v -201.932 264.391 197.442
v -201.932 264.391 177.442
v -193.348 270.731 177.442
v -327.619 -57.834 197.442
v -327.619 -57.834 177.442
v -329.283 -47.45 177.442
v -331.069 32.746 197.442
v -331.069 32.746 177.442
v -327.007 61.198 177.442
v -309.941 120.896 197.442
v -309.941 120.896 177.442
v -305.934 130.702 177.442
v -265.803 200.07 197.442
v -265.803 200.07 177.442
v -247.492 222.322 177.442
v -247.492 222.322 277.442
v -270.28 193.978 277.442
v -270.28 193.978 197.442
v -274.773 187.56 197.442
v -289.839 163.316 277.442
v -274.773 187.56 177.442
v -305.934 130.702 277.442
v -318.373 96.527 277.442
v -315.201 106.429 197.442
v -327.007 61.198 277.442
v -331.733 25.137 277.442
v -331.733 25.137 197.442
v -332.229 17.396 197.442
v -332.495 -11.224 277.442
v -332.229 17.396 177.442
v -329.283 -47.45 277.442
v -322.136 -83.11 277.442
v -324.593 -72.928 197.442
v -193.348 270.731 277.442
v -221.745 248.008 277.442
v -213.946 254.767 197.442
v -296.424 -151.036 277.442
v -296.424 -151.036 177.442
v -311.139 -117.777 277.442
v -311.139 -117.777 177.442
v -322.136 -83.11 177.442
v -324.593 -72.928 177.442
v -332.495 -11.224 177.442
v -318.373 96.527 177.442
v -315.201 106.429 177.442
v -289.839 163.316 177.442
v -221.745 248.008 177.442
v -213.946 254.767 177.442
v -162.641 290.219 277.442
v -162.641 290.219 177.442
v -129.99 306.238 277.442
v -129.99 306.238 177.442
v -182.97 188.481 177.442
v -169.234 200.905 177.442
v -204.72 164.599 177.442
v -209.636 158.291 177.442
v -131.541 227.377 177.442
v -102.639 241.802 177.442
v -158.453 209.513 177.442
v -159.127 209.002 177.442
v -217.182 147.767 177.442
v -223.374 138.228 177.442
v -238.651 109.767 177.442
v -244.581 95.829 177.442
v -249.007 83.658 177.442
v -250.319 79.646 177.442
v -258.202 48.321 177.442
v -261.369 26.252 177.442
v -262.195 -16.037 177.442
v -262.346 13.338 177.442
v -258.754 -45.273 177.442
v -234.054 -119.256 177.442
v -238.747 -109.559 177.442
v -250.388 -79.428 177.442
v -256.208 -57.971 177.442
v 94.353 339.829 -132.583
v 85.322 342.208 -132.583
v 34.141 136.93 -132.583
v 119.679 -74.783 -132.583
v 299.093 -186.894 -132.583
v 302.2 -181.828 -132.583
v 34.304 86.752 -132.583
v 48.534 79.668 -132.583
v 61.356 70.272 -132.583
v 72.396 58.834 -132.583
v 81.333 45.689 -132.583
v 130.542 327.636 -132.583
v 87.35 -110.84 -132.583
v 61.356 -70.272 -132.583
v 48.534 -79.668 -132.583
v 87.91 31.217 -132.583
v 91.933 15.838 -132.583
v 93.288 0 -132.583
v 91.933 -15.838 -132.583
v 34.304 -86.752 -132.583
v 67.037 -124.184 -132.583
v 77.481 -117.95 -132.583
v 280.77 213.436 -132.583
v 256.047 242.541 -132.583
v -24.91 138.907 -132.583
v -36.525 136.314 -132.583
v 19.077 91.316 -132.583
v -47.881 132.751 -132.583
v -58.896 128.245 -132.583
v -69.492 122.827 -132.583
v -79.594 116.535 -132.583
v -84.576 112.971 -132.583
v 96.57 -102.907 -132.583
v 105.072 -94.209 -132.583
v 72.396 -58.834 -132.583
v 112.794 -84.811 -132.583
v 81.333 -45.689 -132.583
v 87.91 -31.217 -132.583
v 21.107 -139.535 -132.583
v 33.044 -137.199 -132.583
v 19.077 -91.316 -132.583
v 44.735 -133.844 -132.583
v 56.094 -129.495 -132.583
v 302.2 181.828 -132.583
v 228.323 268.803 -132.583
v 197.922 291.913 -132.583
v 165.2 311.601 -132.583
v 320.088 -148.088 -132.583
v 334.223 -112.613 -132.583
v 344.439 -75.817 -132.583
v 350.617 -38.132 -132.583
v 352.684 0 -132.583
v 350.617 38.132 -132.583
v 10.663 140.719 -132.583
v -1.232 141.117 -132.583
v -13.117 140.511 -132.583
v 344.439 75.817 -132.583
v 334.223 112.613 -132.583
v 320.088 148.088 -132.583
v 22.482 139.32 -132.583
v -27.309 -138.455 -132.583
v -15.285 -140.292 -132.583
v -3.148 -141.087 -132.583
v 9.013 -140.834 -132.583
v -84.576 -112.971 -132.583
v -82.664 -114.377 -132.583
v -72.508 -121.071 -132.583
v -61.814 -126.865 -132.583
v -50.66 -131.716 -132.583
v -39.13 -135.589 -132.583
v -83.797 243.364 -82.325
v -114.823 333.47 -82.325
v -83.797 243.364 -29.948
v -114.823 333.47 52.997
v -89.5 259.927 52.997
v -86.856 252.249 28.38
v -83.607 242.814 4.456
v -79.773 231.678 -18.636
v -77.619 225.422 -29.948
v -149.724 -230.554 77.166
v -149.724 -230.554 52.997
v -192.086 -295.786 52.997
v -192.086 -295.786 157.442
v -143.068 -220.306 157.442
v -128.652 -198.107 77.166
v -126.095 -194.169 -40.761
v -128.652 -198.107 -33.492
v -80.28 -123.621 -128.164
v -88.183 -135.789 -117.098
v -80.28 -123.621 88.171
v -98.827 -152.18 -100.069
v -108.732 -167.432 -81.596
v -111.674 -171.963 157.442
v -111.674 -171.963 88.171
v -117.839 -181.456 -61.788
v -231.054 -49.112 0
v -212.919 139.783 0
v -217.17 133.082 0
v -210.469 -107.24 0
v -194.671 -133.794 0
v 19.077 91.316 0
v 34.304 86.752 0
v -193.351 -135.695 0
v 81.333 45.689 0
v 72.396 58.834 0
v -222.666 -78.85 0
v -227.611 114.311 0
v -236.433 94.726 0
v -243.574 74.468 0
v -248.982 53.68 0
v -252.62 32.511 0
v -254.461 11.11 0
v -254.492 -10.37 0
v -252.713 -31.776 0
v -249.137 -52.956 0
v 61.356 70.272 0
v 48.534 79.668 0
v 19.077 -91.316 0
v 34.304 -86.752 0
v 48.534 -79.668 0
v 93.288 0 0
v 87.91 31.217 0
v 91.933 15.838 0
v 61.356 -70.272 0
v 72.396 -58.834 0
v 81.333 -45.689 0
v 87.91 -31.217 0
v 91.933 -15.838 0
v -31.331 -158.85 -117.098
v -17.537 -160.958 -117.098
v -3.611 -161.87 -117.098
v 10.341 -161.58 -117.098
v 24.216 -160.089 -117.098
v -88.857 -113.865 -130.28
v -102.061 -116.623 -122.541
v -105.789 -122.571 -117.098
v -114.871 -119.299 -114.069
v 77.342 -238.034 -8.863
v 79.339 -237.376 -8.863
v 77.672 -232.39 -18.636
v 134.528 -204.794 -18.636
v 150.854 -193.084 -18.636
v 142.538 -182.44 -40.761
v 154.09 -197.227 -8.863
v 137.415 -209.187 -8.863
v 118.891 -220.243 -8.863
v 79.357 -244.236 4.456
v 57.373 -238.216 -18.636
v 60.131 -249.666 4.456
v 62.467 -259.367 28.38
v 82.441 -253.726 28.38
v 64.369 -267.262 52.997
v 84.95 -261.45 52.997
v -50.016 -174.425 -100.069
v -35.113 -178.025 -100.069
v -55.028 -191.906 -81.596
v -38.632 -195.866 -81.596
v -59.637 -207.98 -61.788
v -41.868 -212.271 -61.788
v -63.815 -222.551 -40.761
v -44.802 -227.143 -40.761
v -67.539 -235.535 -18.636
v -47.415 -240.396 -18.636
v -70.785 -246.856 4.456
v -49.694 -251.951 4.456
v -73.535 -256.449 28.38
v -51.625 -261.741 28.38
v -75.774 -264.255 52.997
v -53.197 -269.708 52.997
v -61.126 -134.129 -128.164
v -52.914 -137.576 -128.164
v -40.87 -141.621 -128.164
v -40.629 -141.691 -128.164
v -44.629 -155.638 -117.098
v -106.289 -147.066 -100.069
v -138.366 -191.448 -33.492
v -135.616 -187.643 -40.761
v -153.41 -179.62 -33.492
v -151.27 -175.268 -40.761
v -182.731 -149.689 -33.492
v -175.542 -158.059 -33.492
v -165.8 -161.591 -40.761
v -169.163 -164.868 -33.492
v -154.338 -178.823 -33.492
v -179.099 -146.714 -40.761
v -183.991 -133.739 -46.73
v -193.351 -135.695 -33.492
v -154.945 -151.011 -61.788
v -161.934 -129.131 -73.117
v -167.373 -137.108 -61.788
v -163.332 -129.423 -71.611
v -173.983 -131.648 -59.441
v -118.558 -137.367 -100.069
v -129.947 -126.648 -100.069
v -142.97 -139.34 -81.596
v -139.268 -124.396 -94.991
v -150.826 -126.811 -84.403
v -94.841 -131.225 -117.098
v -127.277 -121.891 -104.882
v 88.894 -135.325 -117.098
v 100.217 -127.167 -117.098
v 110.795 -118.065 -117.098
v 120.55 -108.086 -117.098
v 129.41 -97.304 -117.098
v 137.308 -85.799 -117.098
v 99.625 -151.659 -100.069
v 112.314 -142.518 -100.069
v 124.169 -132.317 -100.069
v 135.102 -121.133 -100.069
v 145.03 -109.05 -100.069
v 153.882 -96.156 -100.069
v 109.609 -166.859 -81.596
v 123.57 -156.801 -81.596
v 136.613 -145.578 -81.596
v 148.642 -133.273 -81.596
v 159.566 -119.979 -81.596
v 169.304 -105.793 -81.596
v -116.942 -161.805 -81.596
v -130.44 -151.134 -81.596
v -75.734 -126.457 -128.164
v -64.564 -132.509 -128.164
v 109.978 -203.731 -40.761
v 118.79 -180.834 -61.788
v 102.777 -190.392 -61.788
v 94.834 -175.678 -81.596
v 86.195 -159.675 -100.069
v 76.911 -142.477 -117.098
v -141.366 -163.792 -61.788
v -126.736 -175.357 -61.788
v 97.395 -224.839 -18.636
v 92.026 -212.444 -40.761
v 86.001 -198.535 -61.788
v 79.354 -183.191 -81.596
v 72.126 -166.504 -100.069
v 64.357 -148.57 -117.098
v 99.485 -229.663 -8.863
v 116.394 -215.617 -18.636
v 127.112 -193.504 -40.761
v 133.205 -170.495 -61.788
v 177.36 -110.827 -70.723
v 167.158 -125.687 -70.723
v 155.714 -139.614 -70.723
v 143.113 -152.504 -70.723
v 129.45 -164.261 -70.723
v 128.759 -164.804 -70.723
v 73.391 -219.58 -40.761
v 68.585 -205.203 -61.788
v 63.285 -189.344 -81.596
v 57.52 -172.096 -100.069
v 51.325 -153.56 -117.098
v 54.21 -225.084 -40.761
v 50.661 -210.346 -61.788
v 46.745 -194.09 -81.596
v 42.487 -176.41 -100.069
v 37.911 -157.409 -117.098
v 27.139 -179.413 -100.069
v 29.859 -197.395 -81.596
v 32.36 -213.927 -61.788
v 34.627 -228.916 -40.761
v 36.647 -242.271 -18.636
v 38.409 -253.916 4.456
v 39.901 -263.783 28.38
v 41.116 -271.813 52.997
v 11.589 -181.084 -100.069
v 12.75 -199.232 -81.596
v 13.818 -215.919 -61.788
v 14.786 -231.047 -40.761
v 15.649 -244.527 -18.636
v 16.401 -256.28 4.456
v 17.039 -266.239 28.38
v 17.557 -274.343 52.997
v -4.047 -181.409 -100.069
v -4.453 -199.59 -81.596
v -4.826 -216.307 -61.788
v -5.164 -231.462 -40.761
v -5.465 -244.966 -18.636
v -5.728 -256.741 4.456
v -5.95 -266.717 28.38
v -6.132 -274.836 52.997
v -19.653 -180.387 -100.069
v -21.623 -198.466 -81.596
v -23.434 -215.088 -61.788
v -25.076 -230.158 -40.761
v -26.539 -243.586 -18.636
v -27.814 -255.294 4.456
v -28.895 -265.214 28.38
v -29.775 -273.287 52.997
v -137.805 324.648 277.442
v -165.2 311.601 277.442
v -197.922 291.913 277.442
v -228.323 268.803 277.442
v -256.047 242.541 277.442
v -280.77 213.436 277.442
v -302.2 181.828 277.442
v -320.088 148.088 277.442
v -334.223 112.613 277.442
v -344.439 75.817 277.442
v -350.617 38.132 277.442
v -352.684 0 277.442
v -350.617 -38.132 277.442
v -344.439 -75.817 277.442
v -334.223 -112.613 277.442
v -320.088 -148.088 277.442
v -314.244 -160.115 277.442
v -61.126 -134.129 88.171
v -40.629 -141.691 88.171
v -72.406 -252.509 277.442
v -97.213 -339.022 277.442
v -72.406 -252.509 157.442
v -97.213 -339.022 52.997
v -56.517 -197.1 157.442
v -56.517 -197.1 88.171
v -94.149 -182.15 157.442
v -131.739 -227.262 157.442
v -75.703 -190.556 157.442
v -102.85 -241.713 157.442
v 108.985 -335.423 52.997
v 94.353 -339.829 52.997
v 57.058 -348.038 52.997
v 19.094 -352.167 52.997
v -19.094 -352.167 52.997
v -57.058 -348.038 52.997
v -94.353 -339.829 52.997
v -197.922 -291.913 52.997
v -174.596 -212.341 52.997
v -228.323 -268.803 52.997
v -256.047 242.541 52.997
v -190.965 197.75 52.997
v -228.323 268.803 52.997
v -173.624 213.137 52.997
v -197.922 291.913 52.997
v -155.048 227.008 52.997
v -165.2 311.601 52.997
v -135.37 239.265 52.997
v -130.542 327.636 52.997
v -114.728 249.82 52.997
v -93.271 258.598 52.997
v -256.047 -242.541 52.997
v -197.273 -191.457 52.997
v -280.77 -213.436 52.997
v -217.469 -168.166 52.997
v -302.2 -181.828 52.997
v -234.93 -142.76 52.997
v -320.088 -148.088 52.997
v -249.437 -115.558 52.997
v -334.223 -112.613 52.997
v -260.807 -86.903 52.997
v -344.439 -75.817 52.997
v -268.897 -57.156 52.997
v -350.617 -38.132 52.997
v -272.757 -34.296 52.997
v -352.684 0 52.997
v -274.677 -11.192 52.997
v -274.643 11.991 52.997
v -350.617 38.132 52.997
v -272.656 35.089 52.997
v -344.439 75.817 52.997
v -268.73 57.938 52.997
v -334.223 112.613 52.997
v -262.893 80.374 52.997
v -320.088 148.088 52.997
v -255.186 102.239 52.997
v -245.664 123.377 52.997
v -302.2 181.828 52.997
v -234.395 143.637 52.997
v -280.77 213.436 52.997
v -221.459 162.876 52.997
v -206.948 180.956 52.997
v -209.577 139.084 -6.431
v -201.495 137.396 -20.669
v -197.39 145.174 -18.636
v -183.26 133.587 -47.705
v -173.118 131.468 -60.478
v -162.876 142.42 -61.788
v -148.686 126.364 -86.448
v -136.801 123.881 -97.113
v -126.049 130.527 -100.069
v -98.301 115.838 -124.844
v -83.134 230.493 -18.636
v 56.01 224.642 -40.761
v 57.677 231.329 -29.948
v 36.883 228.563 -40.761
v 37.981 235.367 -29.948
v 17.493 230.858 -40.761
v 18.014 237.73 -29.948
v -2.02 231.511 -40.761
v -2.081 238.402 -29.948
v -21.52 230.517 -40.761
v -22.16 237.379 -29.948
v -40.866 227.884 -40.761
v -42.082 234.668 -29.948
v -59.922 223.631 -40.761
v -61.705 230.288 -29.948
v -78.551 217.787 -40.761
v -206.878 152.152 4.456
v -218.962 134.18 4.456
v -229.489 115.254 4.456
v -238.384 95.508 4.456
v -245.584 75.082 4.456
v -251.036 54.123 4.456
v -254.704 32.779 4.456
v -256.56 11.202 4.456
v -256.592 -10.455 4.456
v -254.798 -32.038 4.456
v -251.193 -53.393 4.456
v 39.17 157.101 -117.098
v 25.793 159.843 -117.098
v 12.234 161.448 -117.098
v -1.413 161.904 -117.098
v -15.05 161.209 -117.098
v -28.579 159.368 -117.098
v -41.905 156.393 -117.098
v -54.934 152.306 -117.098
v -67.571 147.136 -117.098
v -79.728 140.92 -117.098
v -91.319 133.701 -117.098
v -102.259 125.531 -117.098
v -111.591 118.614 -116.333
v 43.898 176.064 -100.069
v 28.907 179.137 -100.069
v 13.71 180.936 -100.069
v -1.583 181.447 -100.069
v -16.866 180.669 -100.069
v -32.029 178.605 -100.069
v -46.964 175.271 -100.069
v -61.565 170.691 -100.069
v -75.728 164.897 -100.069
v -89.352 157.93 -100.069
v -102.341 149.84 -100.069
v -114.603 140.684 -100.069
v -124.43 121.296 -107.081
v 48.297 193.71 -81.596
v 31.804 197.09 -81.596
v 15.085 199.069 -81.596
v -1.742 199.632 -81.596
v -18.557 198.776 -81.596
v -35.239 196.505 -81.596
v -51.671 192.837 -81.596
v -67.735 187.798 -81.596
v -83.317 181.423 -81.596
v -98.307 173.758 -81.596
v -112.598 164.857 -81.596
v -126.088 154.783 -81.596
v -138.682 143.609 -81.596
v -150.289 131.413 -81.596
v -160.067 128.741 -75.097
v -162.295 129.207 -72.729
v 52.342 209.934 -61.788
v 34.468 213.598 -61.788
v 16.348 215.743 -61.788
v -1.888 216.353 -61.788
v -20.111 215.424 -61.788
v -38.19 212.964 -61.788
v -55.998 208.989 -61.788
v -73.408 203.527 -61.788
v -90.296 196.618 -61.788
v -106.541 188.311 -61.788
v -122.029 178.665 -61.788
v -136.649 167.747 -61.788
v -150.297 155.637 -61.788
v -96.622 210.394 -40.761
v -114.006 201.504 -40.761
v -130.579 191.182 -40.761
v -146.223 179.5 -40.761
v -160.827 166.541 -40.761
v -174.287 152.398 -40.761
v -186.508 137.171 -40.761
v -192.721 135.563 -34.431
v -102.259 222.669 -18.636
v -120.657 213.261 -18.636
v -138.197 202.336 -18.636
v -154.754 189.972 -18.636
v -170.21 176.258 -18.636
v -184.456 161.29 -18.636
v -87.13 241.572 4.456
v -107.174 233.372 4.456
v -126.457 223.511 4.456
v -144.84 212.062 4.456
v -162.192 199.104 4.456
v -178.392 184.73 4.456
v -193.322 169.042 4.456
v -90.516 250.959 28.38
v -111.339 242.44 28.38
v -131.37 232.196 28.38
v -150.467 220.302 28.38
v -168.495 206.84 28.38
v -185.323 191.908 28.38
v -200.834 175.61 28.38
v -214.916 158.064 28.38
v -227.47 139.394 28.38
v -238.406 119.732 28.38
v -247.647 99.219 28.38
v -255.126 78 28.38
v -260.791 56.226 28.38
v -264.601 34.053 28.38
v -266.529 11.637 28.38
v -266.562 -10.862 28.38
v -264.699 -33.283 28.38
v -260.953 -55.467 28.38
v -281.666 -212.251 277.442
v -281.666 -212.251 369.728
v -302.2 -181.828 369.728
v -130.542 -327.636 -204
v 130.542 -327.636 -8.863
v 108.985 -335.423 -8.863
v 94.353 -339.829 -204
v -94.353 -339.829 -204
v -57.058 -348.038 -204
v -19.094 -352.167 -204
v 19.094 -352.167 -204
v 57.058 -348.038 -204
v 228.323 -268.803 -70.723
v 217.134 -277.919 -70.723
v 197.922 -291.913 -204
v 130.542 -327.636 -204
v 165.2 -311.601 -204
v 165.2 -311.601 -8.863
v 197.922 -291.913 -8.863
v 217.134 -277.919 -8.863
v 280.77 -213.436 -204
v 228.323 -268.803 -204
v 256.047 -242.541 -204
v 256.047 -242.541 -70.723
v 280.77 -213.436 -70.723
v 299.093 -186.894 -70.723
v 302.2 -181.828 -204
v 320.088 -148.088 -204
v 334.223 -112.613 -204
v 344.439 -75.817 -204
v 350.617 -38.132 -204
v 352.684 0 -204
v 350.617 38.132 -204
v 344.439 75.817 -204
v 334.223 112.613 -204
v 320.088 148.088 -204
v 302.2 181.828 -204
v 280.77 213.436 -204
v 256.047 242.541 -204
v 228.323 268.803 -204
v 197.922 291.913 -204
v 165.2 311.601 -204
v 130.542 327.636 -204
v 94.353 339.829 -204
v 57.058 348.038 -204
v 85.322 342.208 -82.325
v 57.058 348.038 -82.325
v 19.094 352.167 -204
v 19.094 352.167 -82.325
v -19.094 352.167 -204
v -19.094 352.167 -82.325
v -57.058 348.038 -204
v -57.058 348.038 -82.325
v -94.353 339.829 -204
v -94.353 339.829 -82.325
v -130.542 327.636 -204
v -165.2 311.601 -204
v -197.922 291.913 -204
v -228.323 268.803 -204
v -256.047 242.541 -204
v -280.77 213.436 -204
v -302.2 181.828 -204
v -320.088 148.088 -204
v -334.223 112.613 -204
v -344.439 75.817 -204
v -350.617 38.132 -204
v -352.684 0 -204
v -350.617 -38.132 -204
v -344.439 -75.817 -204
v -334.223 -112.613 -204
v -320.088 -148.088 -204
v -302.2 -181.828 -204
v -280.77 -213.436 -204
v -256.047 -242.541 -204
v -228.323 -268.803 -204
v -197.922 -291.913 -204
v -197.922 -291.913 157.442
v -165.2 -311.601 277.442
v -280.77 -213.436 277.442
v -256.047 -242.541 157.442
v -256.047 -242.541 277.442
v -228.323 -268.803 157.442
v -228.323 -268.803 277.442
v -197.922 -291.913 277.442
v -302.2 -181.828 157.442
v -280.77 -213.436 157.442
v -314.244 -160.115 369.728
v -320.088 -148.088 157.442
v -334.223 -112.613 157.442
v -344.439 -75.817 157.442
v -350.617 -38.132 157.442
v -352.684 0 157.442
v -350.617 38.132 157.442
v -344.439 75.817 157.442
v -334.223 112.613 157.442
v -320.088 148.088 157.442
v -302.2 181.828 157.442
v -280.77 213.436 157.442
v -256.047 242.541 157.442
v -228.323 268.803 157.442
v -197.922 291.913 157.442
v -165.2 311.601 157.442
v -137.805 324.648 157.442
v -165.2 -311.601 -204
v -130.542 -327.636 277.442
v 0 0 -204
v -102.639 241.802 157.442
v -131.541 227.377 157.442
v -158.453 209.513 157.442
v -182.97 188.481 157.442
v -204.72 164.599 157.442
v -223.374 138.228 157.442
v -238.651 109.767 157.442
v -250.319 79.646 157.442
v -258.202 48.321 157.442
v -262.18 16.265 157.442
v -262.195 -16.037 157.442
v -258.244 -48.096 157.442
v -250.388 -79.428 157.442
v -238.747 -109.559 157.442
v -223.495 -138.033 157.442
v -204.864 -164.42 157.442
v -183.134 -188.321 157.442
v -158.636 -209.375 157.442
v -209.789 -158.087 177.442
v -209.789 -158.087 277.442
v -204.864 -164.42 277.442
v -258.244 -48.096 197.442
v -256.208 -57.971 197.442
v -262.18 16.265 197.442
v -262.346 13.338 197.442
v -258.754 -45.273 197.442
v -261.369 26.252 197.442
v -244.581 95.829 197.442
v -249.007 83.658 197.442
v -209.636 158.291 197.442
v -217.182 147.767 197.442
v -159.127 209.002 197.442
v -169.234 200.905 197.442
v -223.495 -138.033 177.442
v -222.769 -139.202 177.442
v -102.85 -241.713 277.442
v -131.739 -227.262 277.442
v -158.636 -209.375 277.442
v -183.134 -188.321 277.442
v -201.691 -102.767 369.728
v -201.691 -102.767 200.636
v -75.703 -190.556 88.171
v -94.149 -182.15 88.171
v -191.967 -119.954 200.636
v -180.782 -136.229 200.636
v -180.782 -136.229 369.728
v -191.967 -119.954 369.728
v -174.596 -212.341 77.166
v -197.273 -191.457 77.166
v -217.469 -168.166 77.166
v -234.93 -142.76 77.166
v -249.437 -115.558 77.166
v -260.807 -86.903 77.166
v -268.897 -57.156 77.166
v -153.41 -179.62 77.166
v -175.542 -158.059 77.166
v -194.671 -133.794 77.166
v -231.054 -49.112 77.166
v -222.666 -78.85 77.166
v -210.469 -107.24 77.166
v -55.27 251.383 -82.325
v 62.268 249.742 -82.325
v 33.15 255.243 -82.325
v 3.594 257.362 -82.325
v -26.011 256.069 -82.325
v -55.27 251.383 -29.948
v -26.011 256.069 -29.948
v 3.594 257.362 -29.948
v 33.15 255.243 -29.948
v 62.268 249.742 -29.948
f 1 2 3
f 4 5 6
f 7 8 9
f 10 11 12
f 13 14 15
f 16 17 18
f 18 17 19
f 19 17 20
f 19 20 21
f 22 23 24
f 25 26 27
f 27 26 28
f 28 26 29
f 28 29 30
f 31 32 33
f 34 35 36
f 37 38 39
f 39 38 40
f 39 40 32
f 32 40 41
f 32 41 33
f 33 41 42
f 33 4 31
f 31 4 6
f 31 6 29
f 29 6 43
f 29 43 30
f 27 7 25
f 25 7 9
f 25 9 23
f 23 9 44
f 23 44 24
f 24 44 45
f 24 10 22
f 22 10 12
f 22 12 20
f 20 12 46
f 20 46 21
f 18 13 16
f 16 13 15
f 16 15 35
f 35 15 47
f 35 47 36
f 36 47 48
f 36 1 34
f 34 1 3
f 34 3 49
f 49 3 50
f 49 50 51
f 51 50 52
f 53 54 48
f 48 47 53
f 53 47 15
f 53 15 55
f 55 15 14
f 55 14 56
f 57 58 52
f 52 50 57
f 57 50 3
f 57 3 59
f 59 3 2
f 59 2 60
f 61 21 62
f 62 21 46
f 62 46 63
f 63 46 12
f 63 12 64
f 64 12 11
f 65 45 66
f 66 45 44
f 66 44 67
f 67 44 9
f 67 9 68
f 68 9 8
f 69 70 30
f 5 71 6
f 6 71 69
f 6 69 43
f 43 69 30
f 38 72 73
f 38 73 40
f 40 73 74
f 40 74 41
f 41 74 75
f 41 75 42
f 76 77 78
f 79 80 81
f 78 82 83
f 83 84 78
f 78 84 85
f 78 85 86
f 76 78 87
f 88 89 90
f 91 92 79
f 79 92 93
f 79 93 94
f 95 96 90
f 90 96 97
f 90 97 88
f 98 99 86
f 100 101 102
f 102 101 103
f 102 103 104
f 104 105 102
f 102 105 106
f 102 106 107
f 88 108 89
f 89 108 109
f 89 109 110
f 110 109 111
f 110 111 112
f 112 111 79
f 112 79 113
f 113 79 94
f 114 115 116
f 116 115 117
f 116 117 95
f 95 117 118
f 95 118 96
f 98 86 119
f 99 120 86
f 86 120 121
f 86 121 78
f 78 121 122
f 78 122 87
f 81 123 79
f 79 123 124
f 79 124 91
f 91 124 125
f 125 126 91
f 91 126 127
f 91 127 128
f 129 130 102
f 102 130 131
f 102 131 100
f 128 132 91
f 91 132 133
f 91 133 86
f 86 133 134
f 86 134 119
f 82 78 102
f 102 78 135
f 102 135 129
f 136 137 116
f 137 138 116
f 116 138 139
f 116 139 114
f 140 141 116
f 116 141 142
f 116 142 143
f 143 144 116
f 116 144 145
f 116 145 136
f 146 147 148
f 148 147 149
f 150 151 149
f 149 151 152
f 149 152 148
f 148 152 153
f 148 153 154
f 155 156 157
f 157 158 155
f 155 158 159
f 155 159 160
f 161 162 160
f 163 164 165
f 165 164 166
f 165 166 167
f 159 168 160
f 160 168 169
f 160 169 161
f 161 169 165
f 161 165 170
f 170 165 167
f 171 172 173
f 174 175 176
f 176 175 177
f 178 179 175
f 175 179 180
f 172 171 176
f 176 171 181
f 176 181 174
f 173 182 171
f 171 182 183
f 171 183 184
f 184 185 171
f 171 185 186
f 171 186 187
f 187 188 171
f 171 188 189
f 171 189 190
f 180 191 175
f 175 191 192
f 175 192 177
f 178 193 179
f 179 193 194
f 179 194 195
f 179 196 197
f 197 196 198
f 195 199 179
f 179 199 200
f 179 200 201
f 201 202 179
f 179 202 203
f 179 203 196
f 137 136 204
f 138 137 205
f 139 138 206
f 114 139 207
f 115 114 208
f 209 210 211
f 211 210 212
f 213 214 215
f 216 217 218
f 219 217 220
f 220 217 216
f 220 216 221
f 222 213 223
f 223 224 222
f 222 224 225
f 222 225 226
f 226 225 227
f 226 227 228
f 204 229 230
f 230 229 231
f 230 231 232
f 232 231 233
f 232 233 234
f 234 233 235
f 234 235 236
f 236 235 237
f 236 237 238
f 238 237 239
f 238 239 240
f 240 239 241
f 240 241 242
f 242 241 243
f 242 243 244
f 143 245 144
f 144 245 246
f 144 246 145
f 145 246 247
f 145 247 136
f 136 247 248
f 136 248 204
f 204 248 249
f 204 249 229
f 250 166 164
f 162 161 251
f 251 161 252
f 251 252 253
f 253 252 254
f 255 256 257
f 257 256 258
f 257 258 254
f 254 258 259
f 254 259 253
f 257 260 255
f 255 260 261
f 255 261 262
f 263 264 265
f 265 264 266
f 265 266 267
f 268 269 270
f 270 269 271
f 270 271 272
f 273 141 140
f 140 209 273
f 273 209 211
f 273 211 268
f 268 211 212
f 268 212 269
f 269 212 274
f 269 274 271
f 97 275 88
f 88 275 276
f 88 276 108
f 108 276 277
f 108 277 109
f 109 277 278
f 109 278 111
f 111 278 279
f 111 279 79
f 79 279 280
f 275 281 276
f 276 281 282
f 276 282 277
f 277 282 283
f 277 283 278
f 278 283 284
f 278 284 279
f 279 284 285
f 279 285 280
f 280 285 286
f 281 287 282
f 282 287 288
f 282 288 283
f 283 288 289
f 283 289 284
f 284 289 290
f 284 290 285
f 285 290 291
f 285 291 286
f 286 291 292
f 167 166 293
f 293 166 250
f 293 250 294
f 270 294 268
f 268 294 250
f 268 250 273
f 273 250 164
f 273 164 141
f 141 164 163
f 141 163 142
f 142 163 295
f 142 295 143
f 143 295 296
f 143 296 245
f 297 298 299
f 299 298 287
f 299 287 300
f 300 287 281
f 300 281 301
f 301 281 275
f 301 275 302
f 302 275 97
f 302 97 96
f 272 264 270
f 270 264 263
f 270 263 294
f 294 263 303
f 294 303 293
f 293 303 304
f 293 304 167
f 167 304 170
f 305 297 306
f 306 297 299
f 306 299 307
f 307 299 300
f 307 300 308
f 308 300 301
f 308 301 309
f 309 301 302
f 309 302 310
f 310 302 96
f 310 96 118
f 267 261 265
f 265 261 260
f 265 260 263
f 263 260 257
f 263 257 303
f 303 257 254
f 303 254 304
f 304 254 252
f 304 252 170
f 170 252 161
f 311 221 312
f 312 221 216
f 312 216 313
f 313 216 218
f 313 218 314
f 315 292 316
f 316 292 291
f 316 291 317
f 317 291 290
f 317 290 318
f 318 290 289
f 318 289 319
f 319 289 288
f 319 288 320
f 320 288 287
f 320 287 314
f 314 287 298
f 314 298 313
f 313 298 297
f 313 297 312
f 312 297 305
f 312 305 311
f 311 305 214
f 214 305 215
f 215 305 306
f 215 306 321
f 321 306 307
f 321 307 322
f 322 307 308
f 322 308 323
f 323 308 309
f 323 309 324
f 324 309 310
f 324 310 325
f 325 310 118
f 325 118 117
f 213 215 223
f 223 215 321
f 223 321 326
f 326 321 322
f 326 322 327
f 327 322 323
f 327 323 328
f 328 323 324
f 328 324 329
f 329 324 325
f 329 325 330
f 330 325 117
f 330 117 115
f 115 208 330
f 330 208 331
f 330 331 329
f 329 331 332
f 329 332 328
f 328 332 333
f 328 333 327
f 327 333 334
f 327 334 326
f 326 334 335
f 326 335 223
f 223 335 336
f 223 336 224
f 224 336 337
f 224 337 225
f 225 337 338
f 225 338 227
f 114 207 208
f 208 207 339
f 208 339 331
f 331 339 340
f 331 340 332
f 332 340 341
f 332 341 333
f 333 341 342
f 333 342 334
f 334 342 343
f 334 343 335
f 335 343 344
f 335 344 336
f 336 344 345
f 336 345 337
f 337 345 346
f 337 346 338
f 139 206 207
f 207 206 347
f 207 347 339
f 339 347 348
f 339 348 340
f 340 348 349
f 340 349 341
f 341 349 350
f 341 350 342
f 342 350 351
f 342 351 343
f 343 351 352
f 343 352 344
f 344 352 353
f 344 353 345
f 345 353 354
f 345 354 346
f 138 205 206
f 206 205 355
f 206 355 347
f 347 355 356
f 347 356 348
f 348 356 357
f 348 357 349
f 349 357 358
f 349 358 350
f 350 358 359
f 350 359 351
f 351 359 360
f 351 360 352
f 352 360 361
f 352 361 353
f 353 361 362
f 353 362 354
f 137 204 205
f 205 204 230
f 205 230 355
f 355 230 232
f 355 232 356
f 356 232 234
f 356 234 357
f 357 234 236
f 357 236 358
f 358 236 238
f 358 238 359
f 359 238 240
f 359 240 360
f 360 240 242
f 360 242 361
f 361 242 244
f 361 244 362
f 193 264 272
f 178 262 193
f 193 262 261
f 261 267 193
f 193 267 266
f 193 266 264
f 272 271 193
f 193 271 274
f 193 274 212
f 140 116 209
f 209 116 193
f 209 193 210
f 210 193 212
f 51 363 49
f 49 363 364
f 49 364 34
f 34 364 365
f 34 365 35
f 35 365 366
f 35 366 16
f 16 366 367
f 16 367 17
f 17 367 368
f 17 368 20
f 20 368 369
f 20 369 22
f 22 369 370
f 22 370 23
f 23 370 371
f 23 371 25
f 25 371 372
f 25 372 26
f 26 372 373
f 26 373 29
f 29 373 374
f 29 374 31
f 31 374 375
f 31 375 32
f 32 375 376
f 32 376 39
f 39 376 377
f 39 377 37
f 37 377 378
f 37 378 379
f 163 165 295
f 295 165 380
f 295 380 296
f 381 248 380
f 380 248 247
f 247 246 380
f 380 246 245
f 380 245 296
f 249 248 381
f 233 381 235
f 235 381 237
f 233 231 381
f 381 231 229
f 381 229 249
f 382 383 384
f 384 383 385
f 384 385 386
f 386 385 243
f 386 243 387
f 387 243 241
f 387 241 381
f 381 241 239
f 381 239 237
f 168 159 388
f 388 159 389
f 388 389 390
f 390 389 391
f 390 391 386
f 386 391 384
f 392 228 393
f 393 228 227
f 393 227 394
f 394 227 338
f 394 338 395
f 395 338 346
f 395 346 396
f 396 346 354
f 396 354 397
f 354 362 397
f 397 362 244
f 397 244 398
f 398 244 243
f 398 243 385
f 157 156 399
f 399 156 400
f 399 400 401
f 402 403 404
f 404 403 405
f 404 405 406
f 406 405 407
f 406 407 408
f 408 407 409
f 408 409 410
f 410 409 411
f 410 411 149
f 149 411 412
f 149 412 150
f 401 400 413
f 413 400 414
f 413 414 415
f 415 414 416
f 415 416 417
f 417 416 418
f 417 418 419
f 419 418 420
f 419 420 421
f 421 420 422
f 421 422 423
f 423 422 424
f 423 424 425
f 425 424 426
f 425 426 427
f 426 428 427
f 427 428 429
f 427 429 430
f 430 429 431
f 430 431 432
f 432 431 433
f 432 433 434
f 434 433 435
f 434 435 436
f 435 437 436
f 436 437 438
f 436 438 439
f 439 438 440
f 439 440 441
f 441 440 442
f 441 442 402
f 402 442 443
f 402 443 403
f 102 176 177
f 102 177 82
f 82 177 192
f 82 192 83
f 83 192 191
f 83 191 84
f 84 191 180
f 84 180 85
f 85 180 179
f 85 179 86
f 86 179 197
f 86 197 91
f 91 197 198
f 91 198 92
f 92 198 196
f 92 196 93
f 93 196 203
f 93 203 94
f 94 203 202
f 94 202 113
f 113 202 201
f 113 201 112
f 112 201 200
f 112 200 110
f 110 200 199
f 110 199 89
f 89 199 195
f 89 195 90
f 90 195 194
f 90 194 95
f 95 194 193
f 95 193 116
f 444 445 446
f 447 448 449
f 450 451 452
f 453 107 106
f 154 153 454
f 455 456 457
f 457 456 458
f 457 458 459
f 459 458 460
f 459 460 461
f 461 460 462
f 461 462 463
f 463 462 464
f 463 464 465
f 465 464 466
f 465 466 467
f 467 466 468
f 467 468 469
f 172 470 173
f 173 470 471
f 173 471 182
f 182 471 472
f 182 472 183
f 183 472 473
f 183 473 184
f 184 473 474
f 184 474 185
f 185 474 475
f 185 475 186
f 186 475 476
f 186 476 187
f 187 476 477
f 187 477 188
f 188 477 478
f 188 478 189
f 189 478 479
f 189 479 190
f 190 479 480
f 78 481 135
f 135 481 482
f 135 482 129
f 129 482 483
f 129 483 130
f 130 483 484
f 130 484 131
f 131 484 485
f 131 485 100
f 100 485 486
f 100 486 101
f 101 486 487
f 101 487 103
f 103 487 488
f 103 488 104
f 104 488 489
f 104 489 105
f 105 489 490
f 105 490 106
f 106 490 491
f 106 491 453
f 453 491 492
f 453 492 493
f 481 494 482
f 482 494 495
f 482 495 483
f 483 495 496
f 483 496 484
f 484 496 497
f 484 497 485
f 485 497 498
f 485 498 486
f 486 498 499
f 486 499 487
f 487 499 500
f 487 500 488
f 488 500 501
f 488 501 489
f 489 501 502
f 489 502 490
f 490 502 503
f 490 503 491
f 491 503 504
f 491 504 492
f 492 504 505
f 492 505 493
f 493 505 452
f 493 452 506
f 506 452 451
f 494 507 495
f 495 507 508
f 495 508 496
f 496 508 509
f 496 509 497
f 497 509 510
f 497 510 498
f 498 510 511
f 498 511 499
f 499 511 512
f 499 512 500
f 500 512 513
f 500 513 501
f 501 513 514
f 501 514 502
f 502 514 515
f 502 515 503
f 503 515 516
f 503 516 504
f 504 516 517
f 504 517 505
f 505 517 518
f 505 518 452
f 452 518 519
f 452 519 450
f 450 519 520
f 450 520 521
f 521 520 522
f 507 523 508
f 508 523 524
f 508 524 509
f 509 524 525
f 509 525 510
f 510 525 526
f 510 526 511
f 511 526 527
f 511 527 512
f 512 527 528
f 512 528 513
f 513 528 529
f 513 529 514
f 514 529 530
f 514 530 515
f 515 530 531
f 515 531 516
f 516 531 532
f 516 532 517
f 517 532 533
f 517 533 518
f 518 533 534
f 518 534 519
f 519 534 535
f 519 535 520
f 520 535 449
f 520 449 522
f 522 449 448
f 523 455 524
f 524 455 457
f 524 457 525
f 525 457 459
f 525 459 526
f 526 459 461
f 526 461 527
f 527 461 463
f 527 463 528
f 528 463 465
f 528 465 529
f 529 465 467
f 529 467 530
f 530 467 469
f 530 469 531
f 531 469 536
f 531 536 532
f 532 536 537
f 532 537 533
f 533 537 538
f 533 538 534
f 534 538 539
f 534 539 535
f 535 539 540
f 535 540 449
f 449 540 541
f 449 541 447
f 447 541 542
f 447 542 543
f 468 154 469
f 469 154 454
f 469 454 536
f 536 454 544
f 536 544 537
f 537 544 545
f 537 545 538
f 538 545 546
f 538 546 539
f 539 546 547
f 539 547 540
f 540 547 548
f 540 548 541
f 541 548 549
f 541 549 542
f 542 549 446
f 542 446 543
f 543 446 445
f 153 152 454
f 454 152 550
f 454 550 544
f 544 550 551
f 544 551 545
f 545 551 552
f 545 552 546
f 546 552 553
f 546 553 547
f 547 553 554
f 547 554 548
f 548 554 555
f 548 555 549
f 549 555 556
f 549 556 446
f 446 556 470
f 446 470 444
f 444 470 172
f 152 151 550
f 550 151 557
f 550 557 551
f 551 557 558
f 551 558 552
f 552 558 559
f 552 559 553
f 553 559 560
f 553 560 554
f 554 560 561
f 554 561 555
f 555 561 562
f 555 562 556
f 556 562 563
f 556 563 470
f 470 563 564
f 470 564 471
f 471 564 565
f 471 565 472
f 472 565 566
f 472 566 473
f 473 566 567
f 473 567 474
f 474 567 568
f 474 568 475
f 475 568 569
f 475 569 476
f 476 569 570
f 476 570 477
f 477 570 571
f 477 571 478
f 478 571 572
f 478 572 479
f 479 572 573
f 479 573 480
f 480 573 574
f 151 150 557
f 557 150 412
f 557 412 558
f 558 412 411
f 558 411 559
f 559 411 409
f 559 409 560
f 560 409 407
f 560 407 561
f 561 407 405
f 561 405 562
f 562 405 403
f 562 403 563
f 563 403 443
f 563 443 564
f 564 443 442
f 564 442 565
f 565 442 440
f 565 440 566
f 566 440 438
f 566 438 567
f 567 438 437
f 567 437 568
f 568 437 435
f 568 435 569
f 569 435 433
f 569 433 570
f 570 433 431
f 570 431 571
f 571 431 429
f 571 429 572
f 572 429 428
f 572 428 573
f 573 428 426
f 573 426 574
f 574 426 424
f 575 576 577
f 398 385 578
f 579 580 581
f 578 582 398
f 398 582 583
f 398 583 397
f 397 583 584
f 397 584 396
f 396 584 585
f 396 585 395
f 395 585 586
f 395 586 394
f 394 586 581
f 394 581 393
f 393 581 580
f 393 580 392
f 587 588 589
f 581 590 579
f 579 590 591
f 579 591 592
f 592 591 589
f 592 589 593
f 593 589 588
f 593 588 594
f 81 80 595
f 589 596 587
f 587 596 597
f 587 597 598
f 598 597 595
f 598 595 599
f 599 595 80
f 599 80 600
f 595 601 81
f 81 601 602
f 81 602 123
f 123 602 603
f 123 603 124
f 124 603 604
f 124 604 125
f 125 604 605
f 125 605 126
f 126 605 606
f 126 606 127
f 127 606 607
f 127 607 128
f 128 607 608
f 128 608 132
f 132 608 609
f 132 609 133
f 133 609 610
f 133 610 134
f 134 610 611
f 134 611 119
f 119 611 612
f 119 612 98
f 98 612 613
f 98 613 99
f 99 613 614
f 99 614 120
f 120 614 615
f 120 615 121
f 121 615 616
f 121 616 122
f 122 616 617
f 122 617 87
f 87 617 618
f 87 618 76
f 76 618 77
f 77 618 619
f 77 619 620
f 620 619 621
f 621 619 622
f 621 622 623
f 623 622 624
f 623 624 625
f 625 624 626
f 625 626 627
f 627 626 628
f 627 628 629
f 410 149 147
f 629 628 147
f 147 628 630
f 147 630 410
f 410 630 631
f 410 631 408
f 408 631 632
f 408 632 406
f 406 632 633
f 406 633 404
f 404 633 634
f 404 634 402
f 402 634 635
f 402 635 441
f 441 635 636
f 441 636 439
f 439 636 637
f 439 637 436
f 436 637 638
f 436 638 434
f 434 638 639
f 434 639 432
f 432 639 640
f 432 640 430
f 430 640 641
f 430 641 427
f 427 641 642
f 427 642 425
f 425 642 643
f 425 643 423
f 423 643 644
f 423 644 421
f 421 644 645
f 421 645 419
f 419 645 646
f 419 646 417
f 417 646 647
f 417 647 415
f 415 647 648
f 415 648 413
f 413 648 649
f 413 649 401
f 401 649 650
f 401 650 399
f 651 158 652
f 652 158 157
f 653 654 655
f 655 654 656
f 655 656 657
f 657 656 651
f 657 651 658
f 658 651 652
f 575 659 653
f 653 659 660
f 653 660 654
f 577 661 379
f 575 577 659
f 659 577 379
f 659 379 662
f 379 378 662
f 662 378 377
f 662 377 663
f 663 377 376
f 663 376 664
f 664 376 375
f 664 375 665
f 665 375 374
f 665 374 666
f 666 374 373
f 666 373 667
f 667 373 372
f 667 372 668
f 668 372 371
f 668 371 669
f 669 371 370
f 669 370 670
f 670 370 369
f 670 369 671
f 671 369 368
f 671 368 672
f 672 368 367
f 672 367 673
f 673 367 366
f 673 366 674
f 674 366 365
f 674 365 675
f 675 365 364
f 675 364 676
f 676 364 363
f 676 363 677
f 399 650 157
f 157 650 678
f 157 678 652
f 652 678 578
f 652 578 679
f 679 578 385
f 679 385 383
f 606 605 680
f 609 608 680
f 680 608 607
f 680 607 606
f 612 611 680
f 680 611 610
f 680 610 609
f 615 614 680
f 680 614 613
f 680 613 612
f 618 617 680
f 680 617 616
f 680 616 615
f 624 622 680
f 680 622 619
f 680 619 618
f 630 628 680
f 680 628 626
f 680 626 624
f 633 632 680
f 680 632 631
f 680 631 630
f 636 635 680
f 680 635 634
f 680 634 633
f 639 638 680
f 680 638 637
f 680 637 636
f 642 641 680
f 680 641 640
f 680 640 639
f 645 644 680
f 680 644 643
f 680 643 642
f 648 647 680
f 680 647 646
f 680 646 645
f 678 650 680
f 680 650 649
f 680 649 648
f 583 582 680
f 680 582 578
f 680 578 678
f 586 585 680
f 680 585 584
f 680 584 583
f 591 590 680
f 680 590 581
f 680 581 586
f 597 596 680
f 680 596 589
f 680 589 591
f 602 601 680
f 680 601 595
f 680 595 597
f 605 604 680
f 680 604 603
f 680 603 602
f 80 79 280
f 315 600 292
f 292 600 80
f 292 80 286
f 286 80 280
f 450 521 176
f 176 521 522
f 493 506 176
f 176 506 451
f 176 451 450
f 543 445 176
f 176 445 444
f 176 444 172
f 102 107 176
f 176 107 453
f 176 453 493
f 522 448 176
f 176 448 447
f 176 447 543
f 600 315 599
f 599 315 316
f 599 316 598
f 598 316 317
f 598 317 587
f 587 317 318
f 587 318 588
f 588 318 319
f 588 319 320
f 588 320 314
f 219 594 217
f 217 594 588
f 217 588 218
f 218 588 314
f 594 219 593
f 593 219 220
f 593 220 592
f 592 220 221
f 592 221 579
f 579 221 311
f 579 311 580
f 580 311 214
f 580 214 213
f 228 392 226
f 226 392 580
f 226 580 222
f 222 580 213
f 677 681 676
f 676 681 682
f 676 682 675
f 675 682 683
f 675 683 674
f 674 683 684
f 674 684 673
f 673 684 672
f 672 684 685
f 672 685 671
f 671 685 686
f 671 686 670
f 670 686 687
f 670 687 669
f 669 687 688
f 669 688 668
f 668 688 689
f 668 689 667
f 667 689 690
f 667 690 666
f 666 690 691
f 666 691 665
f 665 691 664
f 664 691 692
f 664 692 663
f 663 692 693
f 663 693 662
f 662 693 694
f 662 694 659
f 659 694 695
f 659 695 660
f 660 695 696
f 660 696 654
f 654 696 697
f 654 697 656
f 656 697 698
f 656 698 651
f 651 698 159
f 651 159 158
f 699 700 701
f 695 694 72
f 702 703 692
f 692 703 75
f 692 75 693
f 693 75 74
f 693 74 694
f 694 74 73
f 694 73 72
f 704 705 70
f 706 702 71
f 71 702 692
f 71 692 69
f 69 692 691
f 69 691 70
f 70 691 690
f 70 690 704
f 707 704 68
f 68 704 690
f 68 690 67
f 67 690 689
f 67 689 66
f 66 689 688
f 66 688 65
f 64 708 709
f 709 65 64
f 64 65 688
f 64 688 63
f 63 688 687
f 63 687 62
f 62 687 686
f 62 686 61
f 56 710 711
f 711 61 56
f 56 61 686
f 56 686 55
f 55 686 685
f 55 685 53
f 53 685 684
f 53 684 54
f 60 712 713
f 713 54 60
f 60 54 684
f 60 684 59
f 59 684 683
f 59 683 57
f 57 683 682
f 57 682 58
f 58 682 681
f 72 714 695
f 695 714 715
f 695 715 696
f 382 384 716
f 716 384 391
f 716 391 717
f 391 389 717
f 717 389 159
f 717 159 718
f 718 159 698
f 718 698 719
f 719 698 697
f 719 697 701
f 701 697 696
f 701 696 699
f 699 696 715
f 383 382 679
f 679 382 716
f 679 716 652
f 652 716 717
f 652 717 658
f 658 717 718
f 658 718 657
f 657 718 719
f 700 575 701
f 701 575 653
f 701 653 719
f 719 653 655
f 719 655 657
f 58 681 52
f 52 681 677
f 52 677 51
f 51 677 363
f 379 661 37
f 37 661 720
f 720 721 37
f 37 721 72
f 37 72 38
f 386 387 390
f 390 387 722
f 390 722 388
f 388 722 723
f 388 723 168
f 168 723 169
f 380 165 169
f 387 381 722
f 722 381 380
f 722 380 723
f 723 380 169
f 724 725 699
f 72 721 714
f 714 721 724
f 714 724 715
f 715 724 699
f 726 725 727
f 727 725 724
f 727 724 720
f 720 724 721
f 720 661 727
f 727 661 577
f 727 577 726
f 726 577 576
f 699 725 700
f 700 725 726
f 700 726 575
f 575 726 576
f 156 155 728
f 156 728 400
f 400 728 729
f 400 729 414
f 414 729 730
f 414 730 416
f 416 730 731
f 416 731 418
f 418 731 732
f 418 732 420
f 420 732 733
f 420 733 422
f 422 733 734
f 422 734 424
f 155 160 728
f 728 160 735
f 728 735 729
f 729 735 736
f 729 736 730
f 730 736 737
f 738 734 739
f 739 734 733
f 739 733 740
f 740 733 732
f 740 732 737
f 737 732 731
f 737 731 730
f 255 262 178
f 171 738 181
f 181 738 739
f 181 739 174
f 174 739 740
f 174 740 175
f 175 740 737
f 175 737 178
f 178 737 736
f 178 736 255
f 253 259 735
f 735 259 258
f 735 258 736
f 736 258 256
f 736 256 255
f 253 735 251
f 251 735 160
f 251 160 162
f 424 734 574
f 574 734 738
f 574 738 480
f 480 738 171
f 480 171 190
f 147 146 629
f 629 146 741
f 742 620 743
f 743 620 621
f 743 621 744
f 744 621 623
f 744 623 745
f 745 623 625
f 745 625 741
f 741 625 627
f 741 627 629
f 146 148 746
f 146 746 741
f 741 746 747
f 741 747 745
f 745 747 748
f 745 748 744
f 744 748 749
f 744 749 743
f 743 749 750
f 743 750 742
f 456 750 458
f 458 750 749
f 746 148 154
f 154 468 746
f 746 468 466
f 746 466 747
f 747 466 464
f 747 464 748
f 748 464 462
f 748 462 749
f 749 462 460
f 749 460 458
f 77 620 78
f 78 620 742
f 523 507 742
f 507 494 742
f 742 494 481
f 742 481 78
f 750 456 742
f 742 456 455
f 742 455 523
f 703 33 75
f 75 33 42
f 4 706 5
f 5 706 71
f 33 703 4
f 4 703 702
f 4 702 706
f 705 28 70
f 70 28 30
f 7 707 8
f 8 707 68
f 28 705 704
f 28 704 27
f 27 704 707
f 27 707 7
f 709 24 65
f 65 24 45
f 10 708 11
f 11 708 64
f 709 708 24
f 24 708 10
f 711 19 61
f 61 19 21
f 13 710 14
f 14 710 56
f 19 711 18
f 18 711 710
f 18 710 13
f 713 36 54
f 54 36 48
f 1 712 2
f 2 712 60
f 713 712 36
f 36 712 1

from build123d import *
from build123d.topology import SkipClean

# Parameters (mm, degrees)
BOSS_EXTRUDE1_DEPTH          = 35
SKETCH5_W                    = 110
SKETCH5_H                    = 110
BOSS_EXTRUDE2_DEPTH          = 55
BOSS_EXTRUDE3_DEPTH          = 10
FILLET1_R                    = 20
FILLET4_R                    = 10
SKETCH12_W                   = 221.575141924
SKETCH12_H                   = 185.580798287
CUT_REVOLVE1_ANGLE           = 32
CUT_REVOLVE1_OTHER_WAY_ANGLE = 109
BOSS_EXTRUDE4_REACH          = 690.076
SKETCH15_W                   = 208.026220801
SKETCH15_H                   = 123.720532191
CUT_REVOLVE2_ANGLE           = 20
SKETCH16_W                   = 103.379457842
SKETCH16_H                   = 185.232234629
CUT_REVOLVE3_ANGLE           = 20
SKETCH17_W                   = 90
SKETCH17_H                   = 120
REVOLVE3_ANGLE               = 74
REVOLVE3_OTHER_WAY_ANGLE     = 67
SKETCH18_W                   = 70
SKETCH18_H                   = 100
CUT_REVOLVE4_ANGLE           = 94
SKETCH19_W                   = 306.456266988
SKETCH19_H                   = 205.283587683
REVOLVE4_ANGLE               = 17
SKETCH20_W                   = 69.271583649
SKETCH20_H                   = 57.641793842
REVOLVE5_ANGLE               = 10
REVOLVE6_ANGLE               = 45
REVOLVE7_ANGLE               = 33
BOSS_EXTRUDE5_DEPTH          = 20
CIRPATTERN1_COUNT            = 5
CIRPATTERN1_ANGLE            = 62.64


with BuildPart() as part:
    # Sketch4 → Boss-Extrude1 (new body)
    with BuildSketch(Plane.XY.offset(90)):
        with BuildLine():
            ThreePointArc((18, 0), (12.727922061, 12.727922061), (0, 18))
            Line((0, 18), (-40, 18))
            Line((-40, 18), (-40, 0))
            Line((-40, 0), (-5, 0))
            ThreePointArc((-5, 0), (0, 5), (5, 0))
            Line((5, 0), (18, 0))
        make_face()
        with BuildLine():
            ThreePointArc((0, -18), (12.727922061, -12.727922061), (18, 0))
            Line((18, 0), (5, 0))
            ThreePointArc((5, 0), (0, -5), (-5, 0))
            Line((-5, 0), (-40, 0))
            Line((-40, 0), (-40, -18))
            Line((-40, -18), (0, -18))
        make_face()
    extrude(amount=-BOSS_EXTRUDE1_DEPTH)

    # Sketch5 → Boss-Extrude2 (add)
    with BuildSketch(Plane(origin=(0, 0, 55), x_dir=(-1, 0, 0), z_dir=(0, 0, -1))):
        with Locations((22, 0)):
            Rectangle(SKETCH5_W, SKETCH5_H)
    extrude(amount=BOSS_EXTRUDE2_DEPTH)

    # Sketch7 → Boss-Extrude3 (add)
    with BuildSketch(Plane(origin=(0, 0, 0), x_dir=(-1, 0, 0), z_dir=(0, 0, -1))):
        Polygon((87, -65), (125, -79.925557452), (125, 79.925557452), (87, 65), (-43, 65), (-43, -65), align=None)
    extrude(amount=-BOSS_EXTRUDE3_DEPTH)

    # Fillet1
    fillet1_edges = [part.edges().sort_by_distance(p)[0] for p in [
        (-125, -79.925557452, 5),
        (-87, -65, 5),
        (43, -65, 5),
        (43, 65, 5),
        (-87, 65, 5),
        (-125, 79.925557452, 5),
    ]]
    fillet(fillet1_edges, radius=FILLET1_R)

    # Fillet4
    fillet4_edges = [part.edges().sort_by_distance(p)[0] for p in [
        (-40, -18, 72.5),
        (-40, 18, 72.5),
        (33, 0, 55),
        (-22, -55, 55),
        (-77, 0, 55),
        (-22, 55, 55),
        (33, -55, 32.5),
        (33, 55, 32.5),
        (33, 0, 10),
        (-77, -55, 32.5),
        (-77, 55, 32.5),
        (-77, 0, 10),
        (-22, 55, 10),
        (-22, -55, 10),
    ]]
    fillet(fillet4_edges, radius=FILLET4_R - 0.0001)  # a hair under: the kernel refuses the full size


with BuildPart() as body_2:
    # Sketch8 → Revolve1 (revolve)
    with BuildSketch(Plane(origin=(0, 0, 0), x_dir=(1, 0, 0), z_dir=(0, 1, 0))):
        with BuildLine():
            Line((0, -474), (0, 204))
            ThreePointArc((0, 204), (339, -135), (0, -474))
        make_face()
    revolve(axis=Axis((0, 0, 474), (0, 0, -1)))


with BuildPart() as body_3:
    # Sketch9 → Revolve2 (revolve)
    with BuildSketch(Plane(origin=(0, 0, 0), x_dir=(0, 0, -1), z_dir=(1, 0, 0)), mode=Mode.PRIVATE) as revolve2_sk:
        with BuildLine():
            Line((0, 0), (0, -93.287808854))
            Line((0, -93.287808854), (132.583470884, -93.287808854))
            Line((132.583470884, -93.287808854), (132.583470884, -141.122377334))
            ThreePointArc((132.583470884, -141.122377334), (51.419403359, -224.141377396), (-52.997327403, -274.904617695))
            Line((-52.997327403, -274.904617695), (-52.997327403, -352.684487381))
            Line((-52.997327403, -352.684487381), (204, -352.684487381))
            Line((204, -352.684487381), (204, 0))
            Line((204, 0), (0, 0))
        make_face()
    revolve(revolve2_sk.sketch.rotate(Axis((0, 0, 0), (0, 0, -1)), 270), axis=Axis((0, 0, 0), (0, 0, -1)))

    # Sketch12 → Cut-Revolve1 (revolve, cut)
    with BuildSketch(Plane(origin=(0, 0, 0), x_dir=(1, 0, 0), z_dir=(0, 1, 0))):
        with Locations((241.896916419, 39.793071741)):
            Rectangle(SKETCH12_W, SKETCH12_H)
    revolve(axis=Axis((0, 0, 0), (0, 0, -1)), revolution_arc=CUT_REVOLVE1_ANGLE, mode=Mode.SUBTRACT)

    # Sketch12 → Cut-Revolve1 other way (revolve, cut)
    with BuildSketch(Plane(origin=(0, 0, 0), x_dir=(1, 0, 0), z_dir=(0, 1, 0))):
        with Locations((241.896916419, 39.793071741)):
            Rectangle(SKETCH12_W, SKETCH12_H)
    revolve(axis=Axis((0, 0, 0), (0, 0, 1)), revolution_arc=CUT_REVOLVE1_OTHER_WAY_ANGLE, mode=Mode.SUBTRACT)

    # Sketch14 → Boss-Extrude4 (add, up to next)
    with BuildSketch(Plane.XY, mode=Mode.PRIVATE) as boss_extrude4_sk1:
        with BuildLine():
            Line((19.076881684, -91.316416191), (-234.050666272, -144.197206796))
            ThreePointArc((-234.050666272, -144.197206796), (-274.904617695, 0), (-234.050666272, 144.197206796))
            Line((-234.050666272, 144.197206796), (19.076881684, 91.316416191))
            ThreePointArc((19.076881684, 91.316416191), (93.287808854, 0), (19.076881684, -91.316416191))
        make_face()
    boss_extrude4_tool1 = extrude(boss_extrude4_sk1.sketch, amount=-BOSS_EXTRUDE4_REACH, mode=Mode.PRIVATE) - body_3.part
    add(boss_extrude4_tool1.solids().sort_by_distance((-108.886341, 0, 0))[0])

    # Sketch15 → Cut-Revolve2 (revolve, cut)
    with BuildSketch(Plane(origin=(0, 0, 0), x_dir=(0.8480480961564173, -0.5299192642332188, 0), z_dir=(0.5299192642332188, 0.8480480961564173, 0))):
        with Locations((248.67137698, 8.862938693)):
            Rectangle(SKETCH15_W, SKETCH15_H)
    revolve(axis=Axis((0, 0, 0), (0, 0, -1)), revolution_arc=CUT_REVOLVE2_ANGLE, mode=Mode.SUBTRACT)

    # Sketch16 → Cut-Revolve3 (revolve, cut)
    with BuildSketch(Plane(origin=(0, 0, 0), x_dir=(0, 0, -1), z_dir=(0.7880107536067323, 0.6156614753256451, 0))):
        with Locations((-42.826790228, -260.068370066)):
            Rectangle(SKETCH16_W, SKETCH16_H)
    revolve(axis=Axis((0, 0, 0), (0, 0, -1)), revolution_arc=CUT_REVOLVE3_ANGLE, mode=Mode.SUBTRACT)



with BuildPart() as body_4:
    # Sketch17 → Revolve3 (revolve)
    with BuildSketch(Plane(origin=(0, 0, 0), x_dir=(1, 0, 0), z_dir=(0, 1, 0))):
        with Locations((-307.684487381, -217.442198662)):
            Rectangle(SKETCH17_W, SKETCH17_H)
    revolve(axis=Axis((0, 0, 0), (0, 0, 1)), revolution_arc=REVOLVE3_ANGLE)

    # Sketch17 → Revolve3 other way (revolve)
    with BuildSketch(Plane(origin=(0, 0, 0), x_dir=(1, 0, 0), z_dir=(0, 1, 0))):
        with Locations((-307.684487381, -217.442198662)):
            Rectangle(SKETCH17_W, SKETCH17_H)
    revolve(axis=Axis((0, 0, 0), (0, 0, -1)), revolution_arc=REVOLVE3_OTHER_WAY_ANGLE)

    # Sketch18 → Cut-Revolve4 (revolve, cut)
    with BuildSketch(Plane(origin=(0, 0, 0), x_dir=(0.3907311284892735, -0.9205048534524405, 0), z_dir=(0.9205048534524405, 0.3907311284892735, 0))):
        with Locations((-297.684487381, -227.442198662)):
            Rectangle(SKETCH18_W, SKETCH18_H)
    revolve(axis=Axis((0, 0, 0), (0, 0, 1)), revolution_arc=CUT_REVOLVE4_ANGLE, mode=Mode.SUBTRACT)


with BuildPart() as body_3_1:
    with SkipClean():  # the faces are left unmerged after this step: merging them gives an invalid solid
        add(body_3.part)

        add(body_4.part)  # Revolve4 merges body 4
        # Sketch19 → Revolve4 (revolve)
        with BuildSketch(Plane(origin=(0, 0, 0), x_dir=(0, 0, -1), z_dir=(0.9612616959383228, -0.2756373558169854, 0))):
            with Locations((-4.214065168, -250.04269354)):
                Rectangle(SKETCH19_W, SKETCH19_H)
        revolve(axis=Axis((0, 0, 0), (0, 0, -1)), revolution_arc=REVOLVE4_ANGLE)

    # Sketch20 → Cut-Revolve5 (revolve, cut)
    with SkipClean():  # the faces are left unmerged after this step: merging them gives an invalid solid
        with BuildSketch(Plane(origin=(0, 0, 0), x_dir=(0, 0, -1), z_dir=(0.9612616959383229, -0.27563735581698545, 0)), mode=Mode.PRIVATE) as cut_revolve5_sk:
            with Locations((-122.806406838, -176.221796619)):
                Rectangle(SKETCH20_W, SKETCH20_H)
        revolve(cut_revolve5_sk.sketch.rotate(Axis((0, 0, 0), (0, 0, 1)), 286), axis=Axis((0, 0, 0), (0, 0, 1)), mode=Mode.SUBTRACT)

    # Sketch21 → Revolve5 (revolve)
    with SkipClean():  # the faces are left unmerged after this step: merging them gives an invalid solid
        with BuildSketch(Plane(origin=(0, 0, 0), x_dir=(0.8910065241883608, 0.4539904997395606, 0), z_dir=(-0.4539904997395606, 0.8910065241883608, 0))):
            Polygon((-352.684487381, -177.442198662), (-262.684487381, -177.442198662), (-226.3635331, -200.635504694), (-226.3635331, -369.727899201), (-352.684487381, -369.727899201), align=None)
        revolve(axis=Axis((0, 0, 0), (0, 0, 1)), revolution_arc=REVOLVE5_ANGLE)

    # Sketch23 → Revolve6 (revolve)
    with SkipClean():  # the faces are left unmerged after this step: merging them gives an invalid solid
        with BuildSketch(Plane(origin=(0, 0, 0), x_dir=(0, 0, 1), z_dir=(-0.838670567945428, 0.5446390350150208, 0))):
            with BuildLine():
                Line((52.997327403, -274.904617695), (77.16647828, -274.904617695))
                Line((77.16647828, -274.904617695), (77.16647828, -236.215399807))
                Line((77.16647828, -236.215399807), (-33.492204466, -236.215399807))
                ThreePointArc((-33.492204466, -236.215399807), (8.394219656, -258.596574335), (52.997327403, -274.904617695))
            make_face()
        revolve(axis=Axis((0, 0, 0), (0, 0, -1)), revolution_arc=REVOLVE6_ANGLE)

    # Sketch24 → Revolve7 (revolve)
    with SkipClean():  # the faces are left unmerged after this step: merging them gives an invalid solid
        with BuildSketch(Plane(origin=(0, 0, 0), x_dir=(0, 0, -1), z_dir=(0.9455185755993164, 0.3255681544571581, 0))):
            with BuildLine():
                Line((29.947951331, 238.411319514), (29.947951331, 257.387120756))
                Line((29.947951331, 257.387120756), (82.325244386, 257.387120756))
                Line((82.325244386, 257.387120756), (82.325244386, 352.684487381))
                Line((82.325244386, 352.684487381), (132.583470884, 352.684487381))
                Line((132.583470884, 352.684487381), (132.583470884, 141.122377334))
                ThreePointArc((132.583470884, 141.122377334), (86.395300565, 195.178337821), (29.947951331, 238.411319514))
            make_face()
        revolve(axis=Axis((0, 0, 0), (0, 0, -1)), revolution_arc=REVOLVE7_ANGLE)

    # Sketch25 → Boss-Extrude5 (add)
    with SkipClean():  # the faces are left unmerged after this step: merging them gives an invalid solid
        with BuildSketch(Plane.XY.offset(177.442198662)):
            with BuildLine():
                Line((-324.592860019, -72.927658462), (-256.207891235, -57.971168522))
                ThreePointArc((-256.207891235, -57.971168522), (-257.559046392, -51.637946631), (-258.753675036, -45.273342779))
                Line((-258.753675036, -45.273342779), (-327.618959516, -57.834120637))
                ThreePointArc((-327.618959516, -57.834120637), (-326.193222042, -65.398394765), (-324.592860019, -72.927658462))
            make_face()
        boss_extrude5 = extrude(amount=BOSS_EXTRUDE5_DEPTH)

    # CirPattern1: Boss-Extrude5 ×5 about axis
    cirpattern1_axis = Axis((0, 0, 0), (0, 0, -1))
    for i in range(1, CIRPATTERN1_COUNT):
        add(boss_extrude5.rotate(cirpattern1_axis, i * CIRPATTERN1_ANGLE / (CIRPATTERN1_COUNT - 1)))


solid = body_3_1.part
